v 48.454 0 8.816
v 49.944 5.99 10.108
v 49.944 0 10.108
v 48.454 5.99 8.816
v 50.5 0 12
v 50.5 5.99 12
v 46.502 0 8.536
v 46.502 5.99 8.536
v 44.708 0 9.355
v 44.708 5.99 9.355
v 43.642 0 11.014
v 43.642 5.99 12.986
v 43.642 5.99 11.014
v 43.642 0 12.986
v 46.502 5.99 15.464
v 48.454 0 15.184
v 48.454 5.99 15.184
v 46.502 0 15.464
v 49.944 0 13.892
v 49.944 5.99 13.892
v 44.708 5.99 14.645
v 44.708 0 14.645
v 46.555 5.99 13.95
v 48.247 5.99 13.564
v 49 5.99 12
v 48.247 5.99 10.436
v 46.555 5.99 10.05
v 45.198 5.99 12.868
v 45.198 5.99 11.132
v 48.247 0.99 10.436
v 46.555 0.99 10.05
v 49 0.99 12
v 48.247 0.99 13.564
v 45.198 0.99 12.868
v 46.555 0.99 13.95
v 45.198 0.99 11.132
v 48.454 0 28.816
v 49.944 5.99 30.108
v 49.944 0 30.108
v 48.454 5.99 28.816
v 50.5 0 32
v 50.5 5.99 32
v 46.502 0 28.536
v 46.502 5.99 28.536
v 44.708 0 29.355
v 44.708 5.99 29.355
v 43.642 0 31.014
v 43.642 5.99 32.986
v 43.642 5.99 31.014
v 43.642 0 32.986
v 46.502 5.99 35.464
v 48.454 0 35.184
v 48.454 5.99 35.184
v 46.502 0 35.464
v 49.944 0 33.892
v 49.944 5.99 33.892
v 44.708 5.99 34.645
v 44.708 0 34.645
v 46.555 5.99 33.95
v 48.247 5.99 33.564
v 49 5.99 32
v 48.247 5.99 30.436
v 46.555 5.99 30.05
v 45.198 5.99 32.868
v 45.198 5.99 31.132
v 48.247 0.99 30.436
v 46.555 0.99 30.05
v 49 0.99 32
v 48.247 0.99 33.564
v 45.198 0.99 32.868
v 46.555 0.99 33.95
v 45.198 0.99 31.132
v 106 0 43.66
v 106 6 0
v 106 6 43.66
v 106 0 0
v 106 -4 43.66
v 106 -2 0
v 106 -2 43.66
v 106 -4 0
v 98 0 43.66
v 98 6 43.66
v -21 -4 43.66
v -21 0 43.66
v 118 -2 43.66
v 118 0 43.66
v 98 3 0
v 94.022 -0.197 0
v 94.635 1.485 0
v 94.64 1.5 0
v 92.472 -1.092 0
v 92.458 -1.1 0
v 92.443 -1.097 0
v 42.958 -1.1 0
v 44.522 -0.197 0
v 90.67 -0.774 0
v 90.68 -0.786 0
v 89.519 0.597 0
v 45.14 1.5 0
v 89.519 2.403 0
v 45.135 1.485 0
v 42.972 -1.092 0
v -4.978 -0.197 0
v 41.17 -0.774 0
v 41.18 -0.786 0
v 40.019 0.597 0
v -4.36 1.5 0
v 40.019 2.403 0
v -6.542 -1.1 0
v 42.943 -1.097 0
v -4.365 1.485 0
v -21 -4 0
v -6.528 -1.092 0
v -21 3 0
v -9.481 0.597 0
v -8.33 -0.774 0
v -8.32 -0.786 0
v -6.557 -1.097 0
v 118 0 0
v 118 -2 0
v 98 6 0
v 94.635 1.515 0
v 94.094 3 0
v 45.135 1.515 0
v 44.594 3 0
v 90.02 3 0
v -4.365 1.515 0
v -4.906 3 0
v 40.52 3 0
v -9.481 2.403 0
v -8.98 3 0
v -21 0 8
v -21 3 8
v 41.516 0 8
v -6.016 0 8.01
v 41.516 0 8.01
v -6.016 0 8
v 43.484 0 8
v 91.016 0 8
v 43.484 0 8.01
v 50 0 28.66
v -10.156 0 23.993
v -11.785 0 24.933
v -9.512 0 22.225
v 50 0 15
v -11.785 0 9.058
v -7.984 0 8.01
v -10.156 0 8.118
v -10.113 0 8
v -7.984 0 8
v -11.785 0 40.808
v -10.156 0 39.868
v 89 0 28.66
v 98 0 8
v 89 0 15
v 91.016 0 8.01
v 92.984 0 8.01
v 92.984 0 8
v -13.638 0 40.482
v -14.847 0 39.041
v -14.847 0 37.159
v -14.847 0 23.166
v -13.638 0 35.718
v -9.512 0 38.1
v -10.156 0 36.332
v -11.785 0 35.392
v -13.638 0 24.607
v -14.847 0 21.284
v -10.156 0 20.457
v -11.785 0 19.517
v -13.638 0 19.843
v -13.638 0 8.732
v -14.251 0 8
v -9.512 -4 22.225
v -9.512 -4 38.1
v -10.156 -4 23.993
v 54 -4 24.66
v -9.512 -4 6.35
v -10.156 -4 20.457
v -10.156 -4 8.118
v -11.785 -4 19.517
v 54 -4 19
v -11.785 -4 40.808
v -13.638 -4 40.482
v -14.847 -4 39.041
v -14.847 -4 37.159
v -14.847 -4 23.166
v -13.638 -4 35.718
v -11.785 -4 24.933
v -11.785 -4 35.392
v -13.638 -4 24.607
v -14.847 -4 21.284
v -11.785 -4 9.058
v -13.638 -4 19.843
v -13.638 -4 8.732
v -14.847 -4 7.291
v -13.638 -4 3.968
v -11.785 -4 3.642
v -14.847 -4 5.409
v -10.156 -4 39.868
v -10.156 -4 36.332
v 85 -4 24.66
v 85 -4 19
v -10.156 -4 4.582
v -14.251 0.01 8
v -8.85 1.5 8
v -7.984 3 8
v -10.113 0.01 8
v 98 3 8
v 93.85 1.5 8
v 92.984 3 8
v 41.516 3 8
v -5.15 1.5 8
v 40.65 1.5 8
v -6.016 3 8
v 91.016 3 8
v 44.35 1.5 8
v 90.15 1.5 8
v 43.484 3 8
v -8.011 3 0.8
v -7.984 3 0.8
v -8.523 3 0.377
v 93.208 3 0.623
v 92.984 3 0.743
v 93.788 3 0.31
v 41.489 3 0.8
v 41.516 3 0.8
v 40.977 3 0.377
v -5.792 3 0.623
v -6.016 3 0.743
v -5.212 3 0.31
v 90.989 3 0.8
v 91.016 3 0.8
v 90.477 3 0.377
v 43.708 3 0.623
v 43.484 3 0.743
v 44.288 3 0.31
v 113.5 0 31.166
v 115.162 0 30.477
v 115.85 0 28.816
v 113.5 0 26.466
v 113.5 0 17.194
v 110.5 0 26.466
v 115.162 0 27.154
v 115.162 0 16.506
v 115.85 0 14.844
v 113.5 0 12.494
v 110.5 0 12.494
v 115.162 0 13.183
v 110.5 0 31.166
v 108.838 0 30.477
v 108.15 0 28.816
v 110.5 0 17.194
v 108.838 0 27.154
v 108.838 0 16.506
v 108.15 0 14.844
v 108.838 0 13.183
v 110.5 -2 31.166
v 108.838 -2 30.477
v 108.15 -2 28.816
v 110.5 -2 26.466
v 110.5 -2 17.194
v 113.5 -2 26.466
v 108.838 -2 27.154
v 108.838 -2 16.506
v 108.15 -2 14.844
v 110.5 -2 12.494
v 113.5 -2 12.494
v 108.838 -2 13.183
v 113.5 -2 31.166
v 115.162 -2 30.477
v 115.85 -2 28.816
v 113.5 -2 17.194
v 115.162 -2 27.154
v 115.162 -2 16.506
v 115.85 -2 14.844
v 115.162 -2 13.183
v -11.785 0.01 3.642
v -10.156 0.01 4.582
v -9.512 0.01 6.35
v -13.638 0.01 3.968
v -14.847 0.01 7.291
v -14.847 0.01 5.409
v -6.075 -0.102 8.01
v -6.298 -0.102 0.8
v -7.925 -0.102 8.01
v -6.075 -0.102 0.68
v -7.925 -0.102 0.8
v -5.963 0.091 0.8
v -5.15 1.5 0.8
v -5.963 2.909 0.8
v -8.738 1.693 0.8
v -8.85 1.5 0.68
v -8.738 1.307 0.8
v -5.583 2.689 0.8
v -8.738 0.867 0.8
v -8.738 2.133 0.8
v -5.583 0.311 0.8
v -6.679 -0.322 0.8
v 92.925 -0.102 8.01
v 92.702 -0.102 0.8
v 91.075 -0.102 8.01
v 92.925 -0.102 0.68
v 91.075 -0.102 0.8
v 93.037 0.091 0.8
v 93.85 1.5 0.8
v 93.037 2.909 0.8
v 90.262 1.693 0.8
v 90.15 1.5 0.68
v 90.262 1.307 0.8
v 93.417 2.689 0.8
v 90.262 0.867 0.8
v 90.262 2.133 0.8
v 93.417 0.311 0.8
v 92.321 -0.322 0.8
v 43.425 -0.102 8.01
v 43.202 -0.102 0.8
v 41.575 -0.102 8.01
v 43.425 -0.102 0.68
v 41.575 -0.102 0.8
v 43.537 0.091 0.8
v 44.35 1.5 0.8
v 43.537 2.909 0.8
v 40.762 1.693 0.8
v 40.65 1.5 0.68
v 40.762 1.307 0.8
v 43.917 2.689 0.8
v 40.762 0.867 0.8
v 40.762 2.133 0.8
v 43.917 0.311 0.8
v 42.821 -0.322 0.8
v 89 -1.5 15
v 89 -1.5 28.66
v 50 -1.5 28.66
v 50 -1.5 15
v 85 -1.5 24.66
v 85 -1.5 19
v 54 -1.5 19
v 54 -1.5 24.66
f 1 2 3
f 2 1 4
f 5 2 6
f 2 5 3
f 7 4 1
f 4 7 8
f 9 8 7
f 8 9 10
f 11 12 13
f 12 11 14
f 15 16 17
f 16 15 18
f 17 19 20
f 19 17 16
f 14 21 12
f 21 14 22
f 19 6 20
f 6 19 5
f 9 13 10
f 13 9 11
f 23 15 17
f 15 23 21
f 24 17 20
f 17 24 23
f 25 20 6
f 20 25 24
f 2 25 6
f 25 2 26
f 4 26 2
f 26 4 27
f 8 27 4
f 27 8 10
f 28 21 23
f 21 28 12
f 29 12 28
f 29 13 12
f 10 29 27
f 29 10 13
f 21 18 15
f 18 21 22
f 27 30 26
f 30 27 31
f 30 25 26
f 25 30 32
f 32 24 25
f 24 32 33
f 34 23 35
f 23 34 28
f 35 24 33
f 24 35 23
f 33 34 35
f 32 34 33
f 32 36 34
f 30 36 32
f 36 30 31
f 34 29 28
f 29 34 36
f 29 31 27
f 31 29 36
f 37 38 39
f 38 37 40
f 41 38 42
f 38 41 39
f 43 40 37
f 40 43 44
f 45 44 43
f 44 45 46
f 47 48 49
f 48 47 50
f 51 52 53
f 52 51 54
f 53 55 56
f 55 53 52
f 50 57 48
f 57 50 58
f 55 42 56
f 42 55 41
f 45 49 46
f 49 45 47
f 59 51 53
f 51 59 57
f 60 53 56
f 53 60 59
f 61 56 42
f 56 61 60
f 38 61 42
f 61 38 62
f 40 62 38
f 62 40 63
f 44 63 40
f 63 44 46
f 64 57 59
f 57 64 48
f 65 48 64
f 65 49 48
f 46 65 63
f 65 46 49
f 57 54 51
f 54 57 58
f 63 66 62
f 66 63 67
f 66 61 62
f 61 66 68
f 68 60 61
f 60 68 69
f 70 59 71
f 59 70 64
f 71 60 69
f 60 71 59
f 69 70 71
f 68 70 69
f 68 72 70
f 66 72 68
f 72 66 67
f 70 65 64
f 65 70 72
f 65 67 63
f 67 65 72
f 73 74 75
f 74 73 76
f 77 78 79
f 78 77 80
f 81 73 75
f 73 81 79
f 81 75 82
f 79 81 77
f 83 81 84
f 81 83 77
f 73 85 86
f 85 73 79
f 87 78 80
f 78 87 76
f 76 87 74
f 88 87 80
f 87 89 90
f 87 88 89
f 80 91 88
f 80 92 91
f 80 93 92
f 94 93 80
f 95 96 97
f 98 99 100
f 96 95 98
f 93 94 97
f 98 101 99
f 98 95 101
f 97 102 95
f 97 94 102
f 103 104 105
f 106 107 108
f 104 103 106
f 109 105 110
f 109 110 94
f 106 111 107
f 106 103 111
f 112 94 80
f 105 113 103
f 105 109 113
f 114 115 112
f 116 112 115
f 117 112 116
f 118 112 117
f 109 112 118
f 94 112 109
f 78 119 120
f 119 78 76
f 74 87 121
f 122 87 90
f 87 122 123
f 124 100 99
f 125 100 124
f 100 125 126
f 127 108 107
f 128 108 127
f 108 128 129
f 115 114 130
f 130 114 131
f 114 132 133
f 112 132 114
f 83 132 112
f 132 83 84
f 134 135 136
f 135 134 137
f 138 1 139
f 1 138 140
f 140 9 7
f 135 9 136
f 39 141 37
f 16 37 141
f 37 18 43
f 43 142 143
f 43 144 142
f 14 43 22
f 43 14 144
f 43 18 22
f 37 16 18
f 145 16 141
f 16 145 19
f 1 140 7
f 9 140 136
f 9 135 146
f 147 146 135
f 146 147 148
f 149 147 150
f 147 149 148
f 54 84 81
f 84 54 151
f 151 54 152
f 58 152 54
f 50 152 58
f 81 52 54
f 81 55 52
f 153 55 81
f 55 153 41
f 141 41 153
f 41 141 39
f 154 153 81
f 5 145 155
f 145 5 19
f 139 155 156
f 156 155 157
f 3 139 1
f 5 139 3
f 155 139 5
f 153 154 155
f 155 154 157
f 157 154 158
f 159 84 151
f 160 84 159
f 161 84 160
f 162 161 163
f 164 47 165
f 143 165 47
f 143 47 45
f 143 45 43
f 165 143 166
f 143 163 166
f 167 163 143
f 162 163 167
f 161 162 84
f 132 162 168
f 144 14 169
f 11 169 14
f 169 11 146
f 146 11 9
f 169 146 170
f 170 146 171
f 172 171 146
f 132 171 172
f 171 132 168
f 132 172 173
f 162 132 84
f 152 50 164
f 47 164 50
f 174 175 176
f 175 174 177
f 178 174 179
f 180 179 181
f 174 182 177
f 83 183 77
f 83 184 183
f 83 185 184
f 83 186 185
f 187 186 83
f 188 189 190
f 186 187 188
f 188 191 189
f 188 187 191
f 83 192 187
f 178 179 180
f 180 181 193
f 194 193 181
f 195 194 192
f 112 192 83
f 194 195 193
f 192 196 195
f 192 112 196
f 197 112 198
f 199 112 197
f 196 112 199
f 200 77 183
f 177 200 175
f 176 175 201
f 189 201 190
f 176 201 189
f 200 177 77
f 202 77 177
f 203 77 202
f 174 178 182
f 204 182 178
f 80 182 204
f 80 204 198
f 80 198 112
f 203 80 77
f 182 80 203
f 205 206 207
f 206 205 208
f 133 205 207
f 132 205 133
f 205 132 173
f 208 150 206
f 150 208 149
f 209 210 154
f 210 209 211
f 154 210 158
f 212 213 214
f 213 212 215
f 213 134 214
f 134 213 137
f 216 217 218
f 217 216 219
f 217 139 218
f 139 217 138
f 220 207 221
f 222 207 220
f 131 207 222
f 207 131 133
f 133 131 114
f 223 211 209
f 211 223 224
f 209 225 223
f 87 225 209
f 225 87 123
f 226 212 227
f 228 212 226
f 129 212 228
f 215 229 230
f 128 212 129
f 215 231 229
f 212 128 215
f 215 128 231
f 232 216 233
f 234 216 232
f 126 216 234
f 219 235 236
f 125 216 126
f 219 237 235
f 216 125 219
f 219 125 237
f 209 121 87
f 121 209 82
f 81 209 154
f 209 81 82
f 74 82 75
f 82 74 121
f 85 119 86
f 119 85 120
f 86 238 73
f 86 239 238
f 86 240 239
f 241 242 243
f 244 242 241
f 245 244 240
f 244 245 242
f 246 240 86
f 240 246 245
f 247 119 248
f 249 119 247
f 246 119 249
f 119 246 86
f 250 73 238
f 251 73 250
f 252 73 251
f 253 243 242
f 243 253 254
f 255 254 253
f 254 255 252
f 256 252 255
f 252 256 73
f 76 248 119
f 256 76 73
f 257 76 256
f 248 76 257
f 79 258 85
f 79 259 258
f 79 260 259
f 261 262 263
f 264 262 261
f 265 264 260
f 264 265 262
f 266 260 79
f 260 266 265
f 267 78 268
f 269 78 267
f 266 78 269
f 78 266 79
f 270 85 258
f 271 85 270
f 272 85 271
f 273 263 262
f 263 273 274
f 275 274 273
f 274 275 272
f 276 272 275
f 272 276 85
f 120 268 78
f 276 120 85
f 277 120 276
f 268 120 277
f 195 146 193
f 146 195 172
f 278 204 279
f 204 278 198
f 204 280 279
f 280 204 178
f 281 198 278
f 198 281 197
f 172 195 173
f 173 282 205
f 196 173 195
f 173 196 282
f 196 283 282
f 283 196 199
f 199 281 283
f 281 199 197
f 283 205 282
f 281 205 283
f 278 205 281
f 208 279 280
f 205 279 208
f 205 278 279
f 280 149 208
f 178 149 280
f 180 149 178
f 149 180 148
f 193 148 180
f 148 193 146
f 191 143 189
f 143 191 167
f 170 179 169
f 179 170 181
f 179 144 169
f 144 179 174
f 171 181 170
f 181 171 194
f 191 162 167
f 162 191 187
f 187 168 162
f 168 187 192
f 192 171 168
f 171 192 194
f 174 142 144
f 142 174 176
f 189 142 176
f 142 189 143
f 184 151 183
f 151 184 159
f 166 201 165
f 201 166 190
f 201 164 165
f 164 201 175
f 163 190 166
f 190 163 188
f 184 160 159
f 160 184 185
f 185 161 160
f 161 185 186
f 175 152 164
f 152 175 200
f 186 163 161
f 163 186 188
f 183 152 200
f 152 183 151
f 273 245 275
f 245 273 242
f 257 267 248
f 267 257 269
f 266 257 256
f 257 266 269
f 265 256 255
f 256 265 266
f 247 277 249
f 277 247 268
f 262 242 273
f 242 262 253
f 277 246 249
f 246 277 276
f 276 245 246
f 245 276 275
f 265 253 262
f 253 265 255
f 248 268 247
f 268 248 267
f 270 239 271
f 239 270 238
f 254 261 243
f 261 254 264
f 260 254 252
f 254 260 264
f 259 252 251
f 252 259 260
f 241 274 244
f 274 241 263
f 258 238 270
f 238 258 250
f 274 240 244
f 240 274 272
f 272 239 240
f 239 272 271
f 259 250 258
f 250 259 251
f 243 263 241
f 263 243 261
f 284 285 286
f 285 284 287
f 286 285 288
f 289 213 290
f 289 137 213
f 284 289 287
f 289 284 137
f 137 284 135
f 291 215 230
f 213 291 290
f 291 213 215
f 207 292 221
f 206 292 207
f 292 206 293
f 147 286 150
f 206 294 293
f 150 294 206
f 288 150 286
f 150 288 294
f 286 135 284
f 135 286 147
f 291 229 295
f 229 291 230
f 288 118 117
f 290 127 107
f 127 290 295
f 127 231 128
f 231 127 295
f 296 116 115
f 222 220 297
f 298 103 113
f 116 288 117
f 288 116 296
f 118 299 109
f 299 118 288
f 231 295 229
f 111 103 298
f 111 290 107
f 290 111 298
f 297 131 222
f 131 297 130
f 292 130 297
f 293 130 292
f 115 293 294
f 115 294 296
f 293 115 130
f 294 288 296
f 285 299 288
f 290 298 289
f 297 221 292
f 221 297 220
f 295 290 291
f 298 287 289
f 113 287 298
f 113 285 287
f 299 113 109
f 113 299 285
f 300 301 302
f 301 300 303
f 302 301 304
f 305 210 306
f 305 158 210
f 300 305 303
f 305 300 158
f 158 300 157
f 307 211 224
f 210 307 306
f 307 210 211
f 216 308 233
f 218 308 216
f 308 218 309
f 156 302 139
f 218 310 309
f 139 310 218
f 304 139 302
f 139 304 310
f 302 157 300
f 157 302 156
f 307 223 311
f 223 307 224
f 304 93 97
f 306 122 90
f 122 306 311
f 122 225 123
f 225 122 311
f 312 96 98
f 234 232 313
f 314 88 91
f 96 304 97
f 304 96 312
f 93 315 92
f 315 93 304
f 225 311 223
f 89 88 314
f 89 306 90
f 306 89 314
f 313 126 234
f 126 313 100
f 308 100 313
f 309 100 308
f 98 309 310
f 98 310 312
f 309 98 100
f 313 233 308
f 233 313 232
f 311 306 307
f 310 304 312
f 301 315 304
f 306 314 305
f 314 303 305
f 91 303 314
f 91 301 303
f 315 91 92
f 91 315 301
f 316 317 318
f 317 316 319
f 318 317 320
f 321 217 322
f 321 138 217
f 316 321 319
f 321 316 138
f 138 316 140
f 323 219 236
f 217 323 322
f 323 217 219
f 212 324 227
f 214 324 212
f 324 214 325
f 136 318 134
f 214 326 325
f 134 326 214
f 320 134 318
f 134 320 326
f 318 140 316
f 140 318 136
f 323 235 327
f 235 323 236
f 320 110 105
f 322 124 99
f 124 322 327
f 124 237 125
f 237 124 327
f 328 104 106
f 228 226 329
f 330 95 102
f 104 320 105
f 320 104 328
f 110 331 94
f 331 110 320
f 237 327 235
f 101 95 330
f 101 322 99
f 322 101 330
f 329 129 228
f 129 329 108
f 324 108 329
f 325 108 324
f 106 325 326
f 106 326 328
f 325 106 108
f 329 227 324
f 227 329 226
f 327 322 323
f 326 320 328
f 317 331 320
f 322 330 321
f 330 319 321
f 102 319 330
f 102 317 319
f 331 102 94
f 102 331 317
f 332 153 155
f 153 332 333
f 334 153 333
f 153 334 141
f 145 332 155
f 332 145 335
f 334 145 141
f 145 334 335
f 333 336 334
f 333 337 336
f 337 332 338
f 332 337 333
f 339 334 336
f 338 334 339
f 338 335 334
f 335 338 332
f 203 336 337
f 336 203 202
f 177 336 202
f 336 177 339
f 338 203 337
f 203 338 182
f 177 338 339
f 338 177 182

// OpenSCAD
// =====================================================================
// parts/faceplate_left.scad  ->  faceplate_left()
//
// LEFT half of the split 254mm rack faceplate, modeled IN the GLOBAL
// ASSEMBLY FRAME (origin = front-bottom-left interior corner of chassis;
// +X width left->right, +Y depth front->rear, +Z height bottom->top).
//
// Assembly region (per FROZEN CONTRACT part_placements):
//   X  FACE_X0 .. FACE_SPLIT_X            (FACE_TILE_W wide)
//   Y  -FACE_T .. 0                       (thin slab; Y=0 = body front)
//   Z  0       .. FACE_H (43.66, the 1U EIA panel — NOTHING exceeds it)
//
// Features:
//   - Whole LEFT M5 rack cage-nut column at X = M5_X_LEFT: clearance holes
//     at EIA_FACE_HOLES_Z (the three 1U EIA-310 holes, axis +Y).
//   - CENTER seam at X = FACE_SPLIT_X: a BOLTED-OVERLAP lap seam (replaces
//     the old dovetail press-fit + 2U seam block + pin/dowel scheme, all of
//     which overshot the 1U panel). This LEFT tile carries:
//       * a solid SEAM RAIL along its inner edge (meat behind the thin slab),
//       * a thin LAP TONGUE at PARTIAL thickness (back half of FACE_T) that
//         extends LAP_LEN past the seam behind the panel face, so the RIGHT
//         tile's matching rebate nests over it and both front faces stay flush,
//       * 2 M3 SLOTTED holes (M3_SLOT_W, elongated in X) through the overlap
//         with CHAMFER lead-ins, so the tiles bolt together with in/out slop.
//   - BOTTOM flange tongue() bedding onto the baseplate_front front lip,
//     with M3 clearance holes (chamfered) down into the baseplate inserts.
//   - LEFT part of the recessed io_subplate window, with M3 heat-set bosses.
//
// Printability: prints FLAT on its OUTER face (Y = -FACE_T) on the bed. The
// lap tongue, seam rail and bosses all grow +Y (up off the bed) so nothing
// bridges. Tile is FACE_TILE_W (X) x FACE_H (Z) -> both <= PRINT_MAX_XY. OK.
// Renders Simple: yes, Zmax = FACE_H.
// =====================================================================

include <params.scad>
use <../lib/joinery.scad>


// ---- derived local constants (NOT contract params) -------------------
TILE_X0         = FACE_X0;              // left outer edge
TILE_X1         = FACE_SPLIT_X;         // center seam edge
TILE_W          = TILE_X1 - TILE_X0;    // = FACE_TILE_W

// Bottom mounting flange (tongue bedding onto baseplate_front front lip).
FLANGE_H        = 8;                    // MEASURE flange height up the back (Z)
FLANGE_T        = WALL_T;               // = 3  flange thickness into body (+Y)
FLANGE_M3_INSET = 14;                   // MEASURE M3 mount inset from tile ends

// ---- center-seam BOLTED-OVERLAP geometry (seam plane = X = FACE_SPLIT_X) --
// The LEFT tile owns the lap TONGUE; the RIGHT tile owns the matching rebate.
SEAM_RAIL_W     = 8;                    // X-width of the solid seam rail (meat)
SEAM_RAIL_T     = 6;                    // seam-rail depth into the body (+Y)
LAP_LEN         = 12;                   // tongue reach past the seam into +X
LAP_T           = FACE_T / 2;           // tongue thickness (back half of FACE_T)
// Lap tongue occupies Y -LAP_T..0 (back half) so the RIGHT tile's front half
// (Y -FACE_T..-LAP_T) stays solid and both outer faces sit flush at Y=-FACE_T.
// Two bolt slots along Z, kept well inside Z 0..FACE_H:
LAP_BOLT_Z      = [ FACE_H * 0.34, FACE_H * 0.66 ];  // 2 bolt heights (Z)
LAP_BOLT_X      = FACE_SPLIT_X + LAP_LEN/2;           // bolt X (mid-overlap)
LAP_SLOT_TRAVEL = 3;                    // X-elongation of the slot (in/out slop)

// io_subplate window (LEFT part). Built as three NESTED rectangles that never
// share an edge (avoids degenerate zero-width shelves -> stays 2-manifold):
//   * APERTURE  = the through-hole the I/O pokes out of.
//   * RECESS    = a shallow inner-face pocket surrounding the aperture so the
//                 io_subplate seats flush, bounded inside a solid frame.
//   * FRAME     = the solid full-thickness border (incl. the seam rail).
WIN_Z0          = IO_WIN_Z0;            // window bottom (assembly Z) MEASURE
WIN_TOP_RAIL    = 6;                    // solid slab kept above the window
WIN_Z1          = min(WIN_Z0 + IO_SUB_H, FACE_H - WIN_TOP_RAIL); // capped top
WIN_RECESS      = 1.5;                  // inner-face pocket depth (+Y) MEASURE
RECESS_LIP      = 4;                    // recess overhangs aperture each side
FRAME_W         = 9;                    // solid frame width around the recess

// Aperture rectangle (assembly X,Z). Inset from the window envelope by the
// frame + recess lip; its right edge stays clear of the seam rail.
AP_X0           = IO_WIN_X0 + FRAME_W + RECESS_LIP;
AP_X1           = FACE_SPLIT_X - SEAM_RAIL_W - FRAME_W - RECESS_LIP;
AP_Z0           = WIN_Z0 + FRAME_W + RECESS_LIP;
AP_Z1           = WIN_Z1 - FRAME_W - RECESS_LIP;

// Recess rectangle = aperture grown by RECESS_LIP on every side.
RC_X0           = AP_X0 - RECESS_LIP;
RC_X1           = AP_X1 + RECESS_LIP;
RC_Z0           = AP_Z0 - RECESS_LIP;
RC_Z1           = AP_Z1 + RECESS_LIP;

IO_BOSS_H       = 6;                    // M3 boss proud of inner face (+Y)


// ---- local helper: chamfered slotted bolt hole (axis +Y) --------------
// Elongated in X by `travel`, bored through Y `thru`, with a CHAMFER lead-in
// cone at the entry (+Y) face. Origin = slot center on the inner (Y=0) face.
module lap_bolt_slot(travel, thru) {
    // through slot (hull of two cylinders along X), axis +Y
    translate([0, thru + EPS, 0])
        rotate([90, 0, 0])
            linear_extrude(height = thru + 2*EPS)
                hull() {
                    translate([-travel/2, 0]) circle(d = M3_SLOT_W);
                    translate([ travel/2, 0]) circle(d = M3_SLOT_W);
                }
    // CHAMFER lead-in at the +Y entry face (cone widening outward)
    translate([0, thru, 0])
        rotate([-90, 0, 0])
            cylinder(h = CHAMFER + EPS,
                     d1 = M3_SLOT_W, d2 = M3_SLOT_W + 2*CHAMFER);
}


module faceplate_left() {
    difference() {
        union() {
            // -------- main faceplate slab (Y -FACE_T .. 0) --------------
            translate([TILE_X0, -FACE_T, 0])
                cube([TILE_W, FACE_T, FACE_H]);

            // -------- bottom mounting flange (tongue onto baseplate lip) -
            translate([TILE_X0, 0, 0])
                tongue(TILE_W, FLANGE_H, FLANGE_T);     // w(X) x t(Y) x h(Z)

            // -------- center seam RAIL (meat behind the thin slab) ------
            // Solid rail along the inner edge, just left of the seam, fused to
            // the slab; grows +Y into the body. Front face reaches the recess
            // pocket (Y=-WIN_RECESS) so it stays fused across the io-window band.
            translate([FACE_SPLIT_X - SEAM_RAIL_W, -WIN_RECESS, 0])
                cube([SEAM_RAIL_W, SEAM_RAIL_T + WIN_RECESS, FACE_H]);

            // -------- center seam LAP TONGUE (overlaps into the RIGHT tile) -
            // Partial-thickness tongue on the BACK half (Y -LAP_T..0), reaching
            // LAP_LEN past the seam. The RIGHT tile's rebate nests over it; the
            // RIGHT tile's front half keeps both outer faces flush at Y=-FACE_T.
            translate([FACE_SPLIT_X, -LAP_T, 0])
                cube([LAP_LEN, LAP_T, FACE_H]);

            // -------- io_subplate M3 mounting bosses (LEFT column) ------
            for (m = IO_SUB_M3) {
                bx = IO_WIN_X0 + m[0];
                bz = WIN_Z0 + m[1];
                if (bx <= FACE_SPLIT_X - 2)
                    translate([bx, -EPS, bz])
                        rotate([-90, 0, 0])     // boss axis +Y (into body)
                            heatset_boss(M3_BOSS_OD, M3_INSERT_BORE,
                                         IO_BOSS_H, M3_INSERT_DEPTH);
            }
        }

        // ================= NEGATIVES (cuts) =========================

        // -------- M5 rack cage-nut column (whole LEFT column, 3x 1U) ----
        // eia_face_holes assumes plate Y 0..t; shift -FACE_T to bite the real
        // slab at Y -FACE_T..0. Axis +Y. EIA_FACE_HOLES_Z = the three 1U holes.
        translate([0, -FACE_T, 0])
            eia_face_holes(EIA_FACE_HOLES_Z, M5_X_LEFT, M5_CLEAR, FACE_T);

        // -------- io_subplate window: inner-face recess pocket ----------
        translate([RC_X0, -WIN_RECESS, RC_Z0])
            cube([RC_X1 - RC_X0, WIN_RECESS + EPS, RC_Z1 - RC_Z0]);

        // -------- io_subplate window: through-opening (APERTURE) --------
        translate([AP_X0, -FACE_T - EPS, AP_Z0])
            cube([AP_X1 - AP_X0, FACE_T + 2*EPS, AP_Z1 - AP_Z0]);

        // -------- center-seam 2x M3 SLOTTED bolt holes (chamfered) ------
        // Through the lap tongue (back half), axis +Y, elongated in X for slop.
        for (bz = LAP_BOLT_Z)
            translate([LAP_BOLT_X, -LAP_T, bz])
                lap_bolt_slot(LAP_SLOT_TRAVEL, LAP_T);

        // -------- bottom-flange M3 clearance holes (chamfered) ----------
        for (fx = [TILE_X0 + FLANGE_M3_INSET,
                   TILE_X1 - FLANGE_M3_INSET,
                   (TILE_X0 + TILE_X1)/2]) {
            // through clearance hole (axis +Z)
            translate([fx, FLANGE_T/2, -EPS])
                cylinder(h = FLANGE_H + 2*EPS, d = M3_CLEAR);
            // CHAMFER lead-in at the bottom (Z=0) entry face
            translate([fx, FLANGE_T/2, -EPS])
                cylinder(h = CHAMFER + EPS,
                         d1 = M3_CLEAR + 2*CHAMFER, d2 = M3_CLEAR);
        }
    }
}


// ---- standalone render -----------------------------------------------
faceplate_left();
